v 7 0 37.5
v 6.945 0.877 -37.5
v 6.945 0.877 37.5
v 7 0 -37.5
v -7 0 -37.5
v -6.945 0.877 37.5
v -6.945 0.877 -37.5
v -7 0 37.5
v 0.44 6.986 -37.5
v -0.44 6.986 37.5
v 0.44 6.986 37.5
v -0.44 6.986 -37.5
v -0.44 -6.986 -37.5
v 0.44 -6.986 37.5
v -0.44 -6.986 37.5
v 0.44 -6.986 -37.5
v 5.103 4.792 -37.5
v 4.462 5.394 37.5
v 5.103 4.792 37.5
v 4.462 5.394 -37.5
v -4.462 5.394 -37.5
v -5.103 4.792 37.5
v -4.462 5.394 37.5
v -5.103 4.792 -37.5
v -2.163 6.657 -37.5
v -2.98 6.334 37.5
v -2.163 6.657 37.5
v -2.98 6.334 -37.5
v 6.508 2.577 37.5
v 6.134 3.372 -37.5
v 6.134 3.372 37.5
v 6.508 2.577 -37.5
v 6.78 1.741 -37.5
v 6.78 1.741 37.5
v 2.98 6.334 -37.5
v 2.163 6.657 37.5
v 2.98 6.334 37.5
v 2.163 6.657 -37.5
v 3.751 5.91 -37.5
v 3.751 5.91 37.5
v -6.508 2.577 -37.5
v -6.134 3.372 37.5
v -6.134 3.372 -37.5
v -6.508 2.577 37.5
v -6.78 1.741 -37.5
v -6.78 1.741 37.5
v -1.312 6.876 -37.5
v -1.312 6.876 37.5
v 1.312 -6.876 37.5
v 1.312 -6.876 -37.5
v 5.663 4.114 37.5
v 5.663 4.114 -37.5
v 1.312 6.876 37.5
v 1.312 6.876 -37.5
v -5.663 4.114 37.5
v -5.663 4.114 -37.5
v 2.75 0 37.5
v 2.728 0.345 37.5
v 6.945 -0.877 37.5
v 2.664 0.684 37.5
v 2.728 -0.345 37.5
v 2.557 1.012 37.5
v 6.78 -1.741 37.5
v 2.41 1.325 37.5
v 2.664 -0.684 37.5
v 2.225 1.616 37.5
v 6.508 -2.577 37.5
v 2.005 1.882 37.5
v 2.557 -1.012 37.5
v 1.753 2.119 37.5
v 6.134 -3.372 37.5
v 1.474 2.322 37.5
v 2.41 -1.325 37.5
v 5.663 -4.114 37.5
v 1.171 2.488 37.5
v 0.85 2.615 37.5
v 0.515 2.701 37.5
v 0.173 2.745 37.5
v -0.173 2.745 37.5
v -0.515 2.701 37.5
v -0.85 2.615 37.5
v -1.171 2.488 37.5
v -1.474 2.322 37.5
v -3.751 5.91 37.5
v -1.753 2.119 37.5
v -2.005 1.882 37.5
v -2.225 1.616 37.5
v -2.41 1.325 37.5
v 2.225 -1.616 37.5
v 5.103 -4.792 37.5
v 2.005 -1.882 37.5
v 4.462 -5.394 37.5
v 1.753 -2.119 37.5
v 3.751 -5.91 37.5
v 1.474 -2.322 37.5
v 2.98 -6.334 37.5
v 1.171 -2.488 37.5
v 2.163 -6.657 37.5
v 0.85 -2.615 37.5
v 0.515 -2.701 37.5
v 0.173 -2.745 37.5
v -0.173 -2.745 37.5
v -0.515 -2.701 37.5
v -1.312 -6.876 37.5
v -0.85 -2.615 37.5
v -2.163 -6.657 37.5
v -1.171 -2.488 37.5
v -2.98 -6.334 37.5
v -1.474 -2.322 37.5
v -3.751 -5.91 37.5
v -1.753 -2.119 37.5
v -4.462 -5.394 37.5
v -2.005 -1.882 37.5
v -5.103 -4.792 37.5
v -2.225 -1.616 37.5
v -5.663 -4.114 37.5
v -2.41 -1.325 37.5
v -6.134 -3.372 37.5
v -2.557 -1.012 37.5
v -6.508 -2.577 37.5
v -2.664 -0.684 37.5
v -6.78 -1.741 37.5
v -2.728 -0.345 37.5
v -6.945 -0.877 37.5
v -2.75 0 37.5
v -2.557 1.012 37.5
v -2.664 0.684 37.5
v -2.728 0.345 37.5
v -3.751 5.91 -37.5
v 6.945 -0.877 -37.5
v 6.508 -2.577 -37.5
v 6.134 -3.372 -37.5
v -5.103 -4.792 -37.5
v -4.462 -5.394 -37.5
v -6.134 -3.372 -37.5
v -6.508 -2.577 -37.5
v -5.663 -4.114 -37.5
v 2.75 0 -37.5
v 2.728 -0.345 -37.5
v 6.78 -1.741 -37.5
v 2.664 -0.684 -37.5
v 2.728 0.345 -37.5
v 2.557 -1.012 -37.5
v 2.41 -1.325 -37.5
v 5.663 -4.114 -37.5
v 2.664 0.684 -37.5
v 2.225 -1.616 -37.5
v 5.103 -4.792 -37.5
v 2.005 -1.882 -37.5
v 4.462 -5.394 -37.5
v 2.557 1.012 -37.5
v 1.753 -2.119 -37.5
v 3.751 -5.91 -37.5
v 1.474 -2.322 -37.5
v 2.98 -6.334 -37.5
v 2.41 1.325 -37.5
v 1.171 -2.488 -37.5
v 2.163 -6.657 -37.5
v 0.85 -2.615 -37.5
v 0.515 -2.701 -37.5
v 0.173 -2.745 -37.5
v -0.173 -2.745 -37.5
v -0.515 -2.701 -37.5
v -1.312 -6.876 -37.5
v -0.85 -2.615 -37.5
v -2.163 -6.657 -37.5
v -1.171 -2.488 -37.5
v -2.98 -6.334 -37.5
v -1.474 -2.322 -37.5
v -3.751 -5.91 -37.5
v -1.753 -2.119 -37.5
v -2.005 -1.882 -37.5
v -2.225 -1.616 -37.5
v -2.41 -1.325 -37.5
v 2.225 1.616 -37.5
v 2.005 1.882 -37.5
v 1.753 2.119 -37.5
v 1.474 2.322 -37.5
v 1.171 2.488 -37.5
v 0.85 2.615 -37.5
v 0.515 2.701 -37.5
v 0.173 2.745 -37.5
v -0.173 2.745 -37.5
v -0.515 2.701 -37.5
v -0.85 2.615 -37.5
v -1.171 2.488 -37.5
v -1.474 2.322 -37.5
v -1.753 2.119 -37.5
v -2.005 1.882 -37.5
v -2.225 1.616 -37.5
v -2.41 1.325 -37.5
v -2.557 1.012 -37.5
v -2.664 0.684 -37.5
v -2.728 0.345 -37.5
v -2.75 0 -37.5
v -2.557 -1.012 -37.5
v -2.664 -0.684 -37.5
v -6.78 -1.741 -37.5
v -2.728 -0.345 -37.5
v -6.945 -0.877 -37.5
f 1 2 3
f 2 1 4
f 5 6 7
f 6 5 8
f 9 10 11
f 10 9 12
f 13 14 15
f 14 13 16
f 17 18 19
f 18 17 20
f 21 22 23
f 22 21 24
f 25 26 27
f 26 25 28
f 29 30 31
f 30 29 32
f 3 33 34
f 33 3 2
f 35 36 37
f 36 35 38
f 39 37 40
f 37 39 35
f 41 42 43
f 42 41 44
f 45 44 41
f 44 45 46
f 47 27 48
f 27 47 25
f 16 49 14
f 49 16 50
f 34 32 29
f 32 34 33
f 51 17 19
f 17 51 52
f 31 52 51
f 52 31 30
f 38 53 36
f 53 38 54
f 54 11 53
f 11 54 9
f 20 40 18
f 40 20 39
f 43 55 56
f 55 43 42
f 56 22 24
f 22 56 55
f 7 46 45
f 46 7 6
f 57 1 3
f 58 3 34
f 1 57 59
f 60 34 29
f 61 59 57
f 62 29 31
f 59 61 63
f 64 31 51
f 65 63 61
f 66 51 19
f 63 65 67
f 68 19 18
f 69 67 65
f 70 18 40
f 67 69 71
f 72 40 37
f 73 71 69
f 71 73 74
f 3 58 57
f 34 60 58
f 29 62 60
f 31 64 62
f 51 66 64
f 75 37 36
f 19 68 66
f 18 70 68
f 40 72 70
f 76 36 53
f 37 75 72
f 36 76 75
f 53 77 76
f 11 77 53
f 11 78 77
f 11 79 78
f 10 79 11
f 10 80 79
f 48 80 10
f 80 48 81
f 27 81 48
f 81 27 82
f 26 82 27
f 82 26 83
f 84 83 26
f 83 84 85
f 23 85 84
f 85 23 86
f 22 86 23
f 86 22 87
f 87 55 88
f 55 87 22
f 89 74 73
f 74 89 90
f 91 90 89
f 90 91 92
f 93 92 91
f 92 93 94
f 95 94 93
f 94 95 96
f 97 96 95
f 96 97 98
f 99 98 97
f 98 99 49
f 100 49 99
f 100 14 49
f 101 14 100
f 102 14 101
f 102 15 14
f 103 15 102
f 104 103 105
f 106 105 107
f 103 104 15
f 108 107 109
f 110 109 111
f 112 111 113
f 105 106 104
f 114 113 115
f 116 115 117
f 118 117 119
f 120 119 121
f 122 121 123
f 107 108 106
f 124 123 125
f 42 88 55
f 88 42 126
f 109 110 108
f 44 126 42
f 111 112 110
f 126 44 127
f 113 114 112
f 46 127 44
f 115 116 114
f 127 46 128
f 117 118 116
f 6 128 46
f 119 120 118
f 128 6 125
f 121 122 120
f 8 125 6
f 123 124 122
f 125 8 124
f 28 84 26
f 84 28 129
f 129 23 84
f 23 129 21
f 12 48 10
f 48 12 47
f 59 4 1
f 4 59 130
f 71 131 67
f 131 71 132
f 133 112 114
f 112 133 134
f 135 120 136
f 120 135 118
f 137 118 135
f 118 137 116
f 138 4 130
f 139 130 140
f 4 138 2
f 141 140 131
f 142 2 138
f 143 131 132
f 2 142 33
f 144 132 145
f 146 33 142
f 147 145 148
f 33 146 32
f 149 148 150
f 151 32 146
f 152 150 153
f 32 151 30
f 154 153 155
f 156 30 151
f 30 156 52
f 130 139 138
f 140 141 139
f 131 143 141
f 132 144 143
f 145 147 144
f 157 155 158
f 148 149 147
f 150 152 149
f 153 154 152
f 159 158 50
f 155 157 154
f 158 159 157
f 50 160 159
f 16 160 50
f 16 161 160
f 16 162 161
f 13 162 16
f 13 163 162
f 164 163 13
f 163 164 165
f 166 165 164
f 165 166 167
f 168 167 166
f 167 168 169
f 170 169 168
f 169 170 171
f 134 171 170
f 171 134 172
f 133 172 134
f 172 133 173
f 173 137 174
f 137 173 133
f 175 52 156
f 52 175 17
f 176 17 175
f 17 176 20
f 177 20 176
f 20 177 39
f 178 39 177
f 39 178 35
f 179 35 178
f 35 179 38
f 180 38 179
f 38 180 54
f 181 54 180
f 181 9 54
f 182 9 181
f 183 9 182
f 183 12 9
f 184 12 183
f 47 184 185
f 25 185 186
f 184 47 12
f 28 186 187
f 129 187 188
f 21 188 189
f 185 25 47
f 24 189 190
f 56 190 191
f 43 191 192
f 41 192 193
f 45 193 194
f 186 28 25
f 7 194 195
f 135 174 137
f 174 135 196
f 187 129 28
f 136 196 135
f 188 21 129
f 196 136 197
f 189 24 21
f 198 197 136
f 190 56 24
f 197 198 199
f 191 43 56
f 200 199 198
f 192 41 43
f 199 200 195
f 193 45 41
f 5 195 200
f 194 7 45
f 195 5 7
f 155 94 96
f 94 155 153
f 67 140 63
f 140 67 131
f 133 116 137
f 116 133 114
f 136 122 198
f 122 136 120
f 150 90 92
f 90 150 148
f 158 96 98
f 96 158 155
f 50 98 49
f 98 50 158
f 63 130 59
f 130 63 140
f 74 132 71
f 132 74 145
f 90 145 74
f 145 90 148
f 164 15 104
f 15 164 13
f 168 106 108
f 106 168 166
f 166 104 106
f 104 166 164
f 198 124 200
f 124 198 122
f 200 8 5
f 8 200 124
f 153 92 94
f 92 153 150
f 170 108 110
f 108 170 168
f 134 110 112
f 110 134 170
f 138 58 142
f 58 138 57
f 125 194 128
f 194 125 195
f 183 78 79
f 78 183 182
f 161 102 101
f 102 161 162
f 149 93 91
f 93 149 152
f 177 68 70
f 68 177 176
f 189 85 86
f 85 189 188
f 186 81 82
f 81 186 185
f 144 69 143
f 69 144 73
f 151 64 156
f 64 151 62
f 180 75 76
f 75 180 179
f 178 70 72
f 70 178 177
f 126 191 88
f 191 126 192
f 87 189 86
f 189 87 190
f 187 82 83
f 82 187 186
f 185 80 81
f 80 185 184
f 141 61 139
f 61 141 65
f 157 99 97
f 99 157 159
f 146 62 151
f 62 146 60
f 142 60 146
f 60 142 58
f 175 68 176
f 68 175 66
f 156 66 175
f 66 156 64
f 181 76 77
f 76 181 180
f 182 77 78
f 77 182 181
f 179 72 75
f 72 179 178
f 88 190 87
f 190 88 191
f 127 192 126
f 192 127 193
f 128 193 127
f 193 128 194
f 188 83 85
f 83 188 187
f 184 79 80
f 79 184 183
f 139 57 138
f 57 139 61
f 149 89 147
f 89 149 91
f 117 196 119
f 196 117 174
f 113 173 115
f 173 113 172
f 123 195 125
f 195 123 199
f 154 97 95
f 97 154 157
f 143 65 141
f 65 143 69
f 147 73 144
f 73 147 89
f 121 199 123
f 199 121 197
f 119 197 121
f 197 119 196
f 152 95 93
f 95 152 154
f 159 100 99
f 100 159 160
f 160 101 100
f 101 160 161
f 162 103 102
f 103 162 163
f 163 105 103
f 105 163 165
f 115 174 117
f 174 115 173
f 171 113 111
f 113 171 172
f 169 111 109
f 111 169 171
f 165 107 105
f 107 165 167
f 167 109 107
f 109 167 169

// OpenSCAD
$fn = 50;


difference() {
	union() {
		translate(v = [0, 0, -37.5000000000]) {
			cylinder(h = 75, r = 7.0000000000);
		}
	}
	union() {
		translate(v = [0, 0, -100.0000000000]) {
			cylinder(h = 200, r = 2.7500000000);
		}
	}
}
